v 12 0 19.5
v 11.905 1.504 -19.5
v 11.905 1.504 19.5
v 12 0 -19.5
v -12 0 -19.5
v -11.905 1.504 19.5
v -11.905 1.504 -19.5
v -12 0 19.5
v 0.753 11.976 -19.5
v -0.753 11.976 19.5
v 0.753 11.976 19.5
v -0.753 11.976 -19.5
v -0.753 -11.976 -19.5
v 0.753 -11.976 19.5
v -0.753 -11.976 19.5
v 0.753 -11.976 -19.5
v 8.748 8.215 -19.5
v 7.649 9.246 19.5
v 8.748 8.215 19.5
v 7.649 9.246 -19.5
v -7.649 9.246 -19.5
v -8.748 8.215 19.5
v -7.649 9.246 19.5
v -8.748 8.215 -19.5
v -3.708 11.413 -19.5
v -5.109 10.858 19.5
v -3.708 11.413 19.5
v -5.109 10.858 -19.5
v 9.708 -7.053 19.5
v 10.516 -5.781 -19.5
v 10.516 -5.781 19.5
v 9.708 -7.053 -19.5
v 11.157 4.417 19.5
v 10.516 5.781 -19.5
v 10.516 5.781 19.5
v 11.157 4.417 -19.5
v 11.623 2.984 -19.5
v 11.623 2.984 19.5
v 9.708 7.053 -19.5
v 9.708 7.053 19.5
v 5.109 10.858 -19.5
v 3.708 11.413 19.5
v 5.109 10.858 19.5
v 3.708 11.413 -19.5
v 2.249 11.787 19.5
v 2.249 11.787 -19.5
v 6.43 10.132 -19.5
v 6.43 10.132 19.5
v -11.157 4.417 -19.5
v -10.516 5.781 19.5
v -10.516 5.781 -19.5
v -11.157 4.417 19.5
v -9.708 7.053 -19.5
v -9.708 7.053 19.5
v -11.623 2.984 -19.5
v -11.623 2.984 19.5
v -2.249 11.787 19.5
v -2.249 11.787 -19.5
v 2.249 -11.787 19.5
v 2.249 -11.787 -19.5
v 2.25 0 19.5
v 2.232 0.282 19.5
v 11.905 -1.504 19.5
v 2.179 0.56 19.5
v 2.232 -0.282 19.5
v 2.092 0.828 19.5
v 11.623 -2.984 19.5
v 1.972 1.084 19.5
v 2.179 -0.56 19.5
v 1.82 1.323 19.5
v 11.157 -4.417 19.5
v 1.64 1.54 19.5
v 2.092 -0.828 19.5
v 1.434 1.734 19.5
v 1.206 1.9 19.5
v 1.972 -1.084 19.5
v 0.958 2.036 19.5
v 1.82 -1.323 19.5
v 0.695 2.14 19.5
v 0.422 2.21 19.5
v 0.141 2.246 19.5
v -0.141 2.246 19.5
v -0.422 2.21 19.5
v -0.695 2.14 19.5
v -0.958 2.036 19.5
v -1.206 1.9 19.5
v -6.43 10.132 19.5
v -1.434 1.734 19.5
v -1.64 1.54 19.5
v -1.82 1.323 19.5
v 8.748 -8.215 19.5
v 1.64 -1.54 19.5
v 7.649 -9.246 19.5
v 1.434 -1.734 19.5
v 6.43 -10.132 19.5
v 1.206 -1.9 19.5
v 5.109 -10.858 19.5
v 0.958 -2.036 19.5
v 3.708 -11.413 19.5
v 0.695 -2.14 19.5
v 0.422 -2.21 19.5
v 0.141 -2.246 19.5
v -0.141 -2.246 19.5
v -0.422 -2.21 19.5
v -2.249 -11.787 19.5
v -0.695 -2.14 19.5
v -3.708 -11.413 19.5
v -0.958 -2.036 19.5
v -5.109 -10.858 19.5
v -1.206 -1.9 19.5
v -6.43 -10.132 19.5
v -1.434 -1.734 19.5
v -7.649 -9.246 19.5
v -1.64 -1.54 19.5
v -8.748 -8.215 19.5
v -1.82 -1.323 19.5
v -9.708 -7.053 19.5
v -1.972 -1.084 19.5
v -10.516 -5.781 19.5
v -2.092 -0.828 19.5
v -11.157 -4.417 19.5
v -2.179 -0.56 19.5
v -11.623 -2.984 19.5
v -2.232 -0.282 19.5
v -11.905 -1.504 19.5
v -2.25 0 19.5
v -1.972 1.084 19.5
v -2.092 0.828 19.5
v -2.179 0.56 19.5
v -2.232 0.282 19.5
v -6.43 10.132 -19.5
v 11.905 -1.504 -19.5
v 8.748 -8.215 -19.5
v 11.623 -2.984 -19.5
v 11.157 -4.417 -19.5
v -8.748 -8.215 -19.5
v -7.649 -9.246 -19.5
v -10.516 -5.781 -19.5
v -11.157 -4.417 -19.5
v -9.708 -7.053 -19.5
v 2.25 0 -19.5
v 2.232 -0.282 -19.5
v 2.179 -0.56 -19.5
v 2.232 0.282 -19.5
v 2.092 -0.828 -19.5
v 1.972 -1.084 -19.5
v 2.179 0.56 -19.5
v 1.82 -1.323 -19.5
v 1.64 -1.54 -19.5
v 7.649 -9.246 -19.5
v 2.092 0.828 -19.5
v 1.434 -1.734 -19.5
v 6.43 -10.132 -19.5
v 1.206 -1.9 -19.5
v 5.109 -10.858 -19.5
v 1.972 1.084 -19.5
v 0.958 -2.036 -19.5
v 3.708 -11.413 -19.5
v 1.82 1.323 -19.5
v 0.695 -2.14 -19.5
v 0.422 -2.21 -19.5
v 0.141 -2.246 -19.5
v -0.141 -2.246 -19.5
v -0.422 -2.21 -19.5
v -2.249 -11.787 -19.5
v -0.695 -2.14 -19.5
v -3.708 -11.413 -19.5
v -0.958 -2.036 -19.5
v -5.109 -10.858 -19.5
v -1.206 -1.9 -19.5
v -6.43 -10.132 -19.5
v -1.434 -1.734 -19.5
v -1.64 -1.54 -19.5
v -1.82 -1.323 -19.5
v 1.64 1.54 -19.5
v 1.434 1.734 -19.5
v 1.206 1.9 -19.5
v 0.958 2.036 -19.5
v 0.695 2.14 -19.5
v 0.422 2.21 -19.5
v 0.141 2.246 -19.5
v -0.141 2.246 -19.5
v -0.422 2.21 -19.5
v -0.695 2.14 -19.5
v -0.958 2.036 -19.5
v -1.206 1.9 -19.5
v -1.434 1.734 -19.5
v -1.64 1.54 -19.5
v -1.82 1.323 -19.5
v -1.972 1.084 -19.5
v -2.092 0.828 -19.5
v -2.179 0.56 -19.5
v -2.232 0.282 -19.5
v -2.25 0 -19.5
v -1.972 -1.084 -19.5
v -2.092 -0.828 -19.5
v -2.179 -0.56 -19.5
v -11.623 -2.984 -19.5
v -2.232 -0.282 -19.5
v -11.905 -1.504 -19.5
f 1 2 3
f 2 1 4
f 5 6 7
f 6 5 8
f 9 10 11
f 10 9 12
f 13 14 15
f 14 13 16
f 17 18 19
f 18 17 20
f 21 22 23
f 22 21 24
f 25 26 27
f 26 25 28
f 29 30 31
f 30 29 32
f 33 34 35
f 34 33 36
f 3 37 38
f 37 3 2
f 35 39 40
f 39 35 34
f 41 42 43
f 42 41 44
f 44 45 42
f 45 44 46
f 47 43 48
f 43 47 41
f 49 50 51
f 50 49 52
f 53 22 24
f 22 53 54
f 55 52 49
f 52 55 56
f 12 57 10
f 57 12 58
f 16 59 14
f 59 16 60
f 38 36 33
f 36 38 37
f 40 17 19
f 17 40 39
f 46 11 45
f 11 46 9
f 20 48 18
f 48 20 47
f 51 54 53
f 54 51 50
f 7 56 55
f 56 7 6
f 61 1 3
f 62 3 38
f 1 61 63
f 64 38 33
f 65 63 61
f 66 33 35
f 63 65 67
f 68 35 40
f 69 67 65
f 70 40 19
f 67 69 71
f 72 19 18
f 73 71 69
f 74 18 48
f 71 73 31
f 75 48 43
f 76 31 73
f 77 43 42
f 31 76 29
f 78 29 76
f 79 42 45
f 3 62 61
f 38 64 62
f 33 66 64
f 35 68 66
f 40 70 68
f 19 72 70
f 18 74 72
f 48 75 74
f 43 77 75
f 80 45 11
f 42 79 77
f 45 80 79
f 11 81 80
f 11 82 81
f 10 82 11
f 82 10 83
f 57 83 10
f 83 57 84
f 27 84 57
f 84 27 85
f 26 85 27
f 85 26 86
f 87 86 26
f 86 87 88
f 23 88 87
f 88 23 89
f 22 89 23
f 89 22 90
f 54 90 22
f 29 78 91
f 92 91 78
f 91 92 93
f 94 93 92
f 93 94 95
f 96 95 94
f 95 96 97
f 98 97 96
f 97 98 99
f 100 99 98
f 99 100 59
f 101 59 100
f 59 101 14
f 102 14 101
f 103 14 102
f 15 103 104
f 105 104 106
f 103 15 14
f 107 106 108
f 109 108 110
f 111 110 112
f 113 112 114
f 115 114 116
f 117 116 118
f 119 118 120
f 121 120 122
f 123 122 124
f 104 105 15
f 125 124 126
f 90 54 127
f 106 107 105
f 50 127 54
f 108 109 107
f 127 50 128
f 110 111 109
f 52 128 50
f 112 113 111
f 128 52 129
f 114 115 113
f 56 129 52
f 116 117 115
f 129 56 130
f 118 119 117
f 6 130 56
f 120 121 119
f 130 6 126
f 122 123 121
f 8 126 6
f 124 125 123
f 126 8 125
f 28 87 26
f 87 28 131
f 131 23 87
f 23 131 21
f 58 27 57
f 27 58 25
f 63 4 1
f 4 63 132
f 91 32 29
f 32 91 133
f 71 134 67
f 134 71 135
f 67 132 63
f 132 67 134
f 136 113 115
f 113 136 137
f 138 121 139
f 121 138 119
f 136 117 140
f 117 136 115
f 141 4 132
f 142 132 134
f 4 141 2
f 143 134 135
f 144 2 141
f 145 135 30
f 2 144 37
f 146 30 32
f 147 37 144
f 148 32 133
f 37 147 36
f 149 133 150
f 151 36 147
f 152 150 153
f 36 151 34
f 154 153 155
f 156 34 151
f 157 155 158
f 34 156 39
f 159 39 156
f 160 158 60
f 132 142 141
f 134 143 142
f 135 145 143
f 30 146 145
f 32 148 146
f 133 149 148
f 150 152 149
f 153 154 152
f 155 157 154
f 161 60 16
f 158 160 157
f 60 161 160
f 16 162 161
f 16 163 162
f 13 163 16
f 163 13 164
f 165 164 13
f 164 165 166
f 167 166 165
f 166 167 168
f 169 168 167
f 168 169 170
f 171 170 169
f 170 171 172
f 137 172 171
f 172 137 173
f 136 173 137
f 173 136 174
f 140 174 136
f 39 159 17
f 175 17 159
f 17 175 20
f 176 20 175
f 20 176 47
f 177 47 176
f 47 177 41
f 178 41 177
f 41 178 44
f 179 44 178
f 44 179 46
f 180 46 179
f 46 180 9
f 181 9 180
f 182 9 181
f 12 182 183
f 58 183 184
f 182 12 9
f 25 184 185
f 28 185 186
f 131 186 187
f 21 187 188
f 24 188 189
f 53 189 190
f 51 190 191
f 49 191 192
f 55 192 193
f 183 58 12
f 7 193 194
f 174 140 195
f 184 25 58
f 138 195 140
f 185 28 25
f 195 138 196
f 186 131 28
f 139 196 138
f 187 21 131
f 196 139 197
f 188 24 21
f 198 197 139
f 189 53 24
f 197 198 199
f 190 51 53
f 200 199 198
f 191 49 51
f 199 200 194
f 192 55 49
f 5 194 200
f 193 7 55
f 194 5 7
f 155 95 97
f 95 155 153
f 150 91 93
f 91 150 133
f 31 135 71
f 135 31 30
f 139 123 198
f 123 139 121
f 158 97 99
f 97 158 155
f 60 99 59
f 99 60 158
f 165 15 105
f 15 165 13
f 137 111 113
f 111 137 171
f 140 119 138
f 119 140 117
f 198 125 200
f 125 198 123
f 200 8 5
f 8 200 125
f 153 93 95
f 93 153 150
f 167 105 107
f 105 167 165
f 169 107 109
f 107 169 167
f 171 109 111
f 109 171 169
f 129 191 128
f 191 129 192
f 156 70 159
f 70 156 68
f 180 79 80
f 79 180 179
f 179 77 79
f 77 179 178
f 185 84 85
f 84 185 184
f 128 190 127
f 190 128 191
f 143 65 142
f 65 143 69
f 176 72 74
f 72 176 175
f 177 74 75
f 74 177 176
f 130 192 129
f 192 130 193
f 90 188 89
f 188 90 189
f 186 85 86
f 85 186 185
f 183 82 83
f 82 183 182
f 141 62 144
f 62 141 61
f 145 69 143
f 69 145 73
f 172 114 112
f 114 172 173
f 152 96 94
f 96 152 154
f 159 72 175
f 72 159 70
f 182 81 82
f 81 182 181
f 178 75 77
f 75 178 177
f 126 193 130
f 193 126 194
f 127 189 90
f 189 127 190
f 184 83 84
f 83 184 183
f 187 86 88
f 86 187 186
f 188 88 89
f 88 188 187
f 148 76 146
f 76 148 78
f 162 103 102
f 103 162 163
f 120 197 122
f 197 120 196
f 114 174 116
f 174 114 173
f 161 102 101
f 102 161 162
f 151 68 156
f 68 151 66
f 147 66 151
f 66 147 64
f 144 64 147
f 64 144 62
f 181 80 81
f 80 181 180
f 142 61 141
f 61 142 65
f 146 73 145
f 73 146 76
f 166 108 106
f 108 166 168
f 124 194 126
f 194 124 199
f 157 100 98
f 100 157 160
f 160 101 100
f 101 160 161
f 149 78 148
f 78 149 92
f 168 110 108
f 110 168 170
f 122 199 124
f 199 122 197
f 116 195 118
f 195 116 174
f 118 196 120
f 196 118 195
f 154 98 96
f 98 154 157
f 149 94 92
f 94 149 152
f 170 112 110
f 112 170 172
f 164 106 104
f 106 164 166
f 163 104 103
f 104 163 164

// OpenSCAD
$fn = 50;


difference() {
	union() {
		translate(v = [0, 0, -19.5000000000]) {
			cylinder(h = 39, r = 12.0000000000);
		}
	}
	union() {
		translate(v = [0, 0, -100.0000000000]) {
			cylinder(h = 200, r = 2.2500000000);
		}
	}
}
